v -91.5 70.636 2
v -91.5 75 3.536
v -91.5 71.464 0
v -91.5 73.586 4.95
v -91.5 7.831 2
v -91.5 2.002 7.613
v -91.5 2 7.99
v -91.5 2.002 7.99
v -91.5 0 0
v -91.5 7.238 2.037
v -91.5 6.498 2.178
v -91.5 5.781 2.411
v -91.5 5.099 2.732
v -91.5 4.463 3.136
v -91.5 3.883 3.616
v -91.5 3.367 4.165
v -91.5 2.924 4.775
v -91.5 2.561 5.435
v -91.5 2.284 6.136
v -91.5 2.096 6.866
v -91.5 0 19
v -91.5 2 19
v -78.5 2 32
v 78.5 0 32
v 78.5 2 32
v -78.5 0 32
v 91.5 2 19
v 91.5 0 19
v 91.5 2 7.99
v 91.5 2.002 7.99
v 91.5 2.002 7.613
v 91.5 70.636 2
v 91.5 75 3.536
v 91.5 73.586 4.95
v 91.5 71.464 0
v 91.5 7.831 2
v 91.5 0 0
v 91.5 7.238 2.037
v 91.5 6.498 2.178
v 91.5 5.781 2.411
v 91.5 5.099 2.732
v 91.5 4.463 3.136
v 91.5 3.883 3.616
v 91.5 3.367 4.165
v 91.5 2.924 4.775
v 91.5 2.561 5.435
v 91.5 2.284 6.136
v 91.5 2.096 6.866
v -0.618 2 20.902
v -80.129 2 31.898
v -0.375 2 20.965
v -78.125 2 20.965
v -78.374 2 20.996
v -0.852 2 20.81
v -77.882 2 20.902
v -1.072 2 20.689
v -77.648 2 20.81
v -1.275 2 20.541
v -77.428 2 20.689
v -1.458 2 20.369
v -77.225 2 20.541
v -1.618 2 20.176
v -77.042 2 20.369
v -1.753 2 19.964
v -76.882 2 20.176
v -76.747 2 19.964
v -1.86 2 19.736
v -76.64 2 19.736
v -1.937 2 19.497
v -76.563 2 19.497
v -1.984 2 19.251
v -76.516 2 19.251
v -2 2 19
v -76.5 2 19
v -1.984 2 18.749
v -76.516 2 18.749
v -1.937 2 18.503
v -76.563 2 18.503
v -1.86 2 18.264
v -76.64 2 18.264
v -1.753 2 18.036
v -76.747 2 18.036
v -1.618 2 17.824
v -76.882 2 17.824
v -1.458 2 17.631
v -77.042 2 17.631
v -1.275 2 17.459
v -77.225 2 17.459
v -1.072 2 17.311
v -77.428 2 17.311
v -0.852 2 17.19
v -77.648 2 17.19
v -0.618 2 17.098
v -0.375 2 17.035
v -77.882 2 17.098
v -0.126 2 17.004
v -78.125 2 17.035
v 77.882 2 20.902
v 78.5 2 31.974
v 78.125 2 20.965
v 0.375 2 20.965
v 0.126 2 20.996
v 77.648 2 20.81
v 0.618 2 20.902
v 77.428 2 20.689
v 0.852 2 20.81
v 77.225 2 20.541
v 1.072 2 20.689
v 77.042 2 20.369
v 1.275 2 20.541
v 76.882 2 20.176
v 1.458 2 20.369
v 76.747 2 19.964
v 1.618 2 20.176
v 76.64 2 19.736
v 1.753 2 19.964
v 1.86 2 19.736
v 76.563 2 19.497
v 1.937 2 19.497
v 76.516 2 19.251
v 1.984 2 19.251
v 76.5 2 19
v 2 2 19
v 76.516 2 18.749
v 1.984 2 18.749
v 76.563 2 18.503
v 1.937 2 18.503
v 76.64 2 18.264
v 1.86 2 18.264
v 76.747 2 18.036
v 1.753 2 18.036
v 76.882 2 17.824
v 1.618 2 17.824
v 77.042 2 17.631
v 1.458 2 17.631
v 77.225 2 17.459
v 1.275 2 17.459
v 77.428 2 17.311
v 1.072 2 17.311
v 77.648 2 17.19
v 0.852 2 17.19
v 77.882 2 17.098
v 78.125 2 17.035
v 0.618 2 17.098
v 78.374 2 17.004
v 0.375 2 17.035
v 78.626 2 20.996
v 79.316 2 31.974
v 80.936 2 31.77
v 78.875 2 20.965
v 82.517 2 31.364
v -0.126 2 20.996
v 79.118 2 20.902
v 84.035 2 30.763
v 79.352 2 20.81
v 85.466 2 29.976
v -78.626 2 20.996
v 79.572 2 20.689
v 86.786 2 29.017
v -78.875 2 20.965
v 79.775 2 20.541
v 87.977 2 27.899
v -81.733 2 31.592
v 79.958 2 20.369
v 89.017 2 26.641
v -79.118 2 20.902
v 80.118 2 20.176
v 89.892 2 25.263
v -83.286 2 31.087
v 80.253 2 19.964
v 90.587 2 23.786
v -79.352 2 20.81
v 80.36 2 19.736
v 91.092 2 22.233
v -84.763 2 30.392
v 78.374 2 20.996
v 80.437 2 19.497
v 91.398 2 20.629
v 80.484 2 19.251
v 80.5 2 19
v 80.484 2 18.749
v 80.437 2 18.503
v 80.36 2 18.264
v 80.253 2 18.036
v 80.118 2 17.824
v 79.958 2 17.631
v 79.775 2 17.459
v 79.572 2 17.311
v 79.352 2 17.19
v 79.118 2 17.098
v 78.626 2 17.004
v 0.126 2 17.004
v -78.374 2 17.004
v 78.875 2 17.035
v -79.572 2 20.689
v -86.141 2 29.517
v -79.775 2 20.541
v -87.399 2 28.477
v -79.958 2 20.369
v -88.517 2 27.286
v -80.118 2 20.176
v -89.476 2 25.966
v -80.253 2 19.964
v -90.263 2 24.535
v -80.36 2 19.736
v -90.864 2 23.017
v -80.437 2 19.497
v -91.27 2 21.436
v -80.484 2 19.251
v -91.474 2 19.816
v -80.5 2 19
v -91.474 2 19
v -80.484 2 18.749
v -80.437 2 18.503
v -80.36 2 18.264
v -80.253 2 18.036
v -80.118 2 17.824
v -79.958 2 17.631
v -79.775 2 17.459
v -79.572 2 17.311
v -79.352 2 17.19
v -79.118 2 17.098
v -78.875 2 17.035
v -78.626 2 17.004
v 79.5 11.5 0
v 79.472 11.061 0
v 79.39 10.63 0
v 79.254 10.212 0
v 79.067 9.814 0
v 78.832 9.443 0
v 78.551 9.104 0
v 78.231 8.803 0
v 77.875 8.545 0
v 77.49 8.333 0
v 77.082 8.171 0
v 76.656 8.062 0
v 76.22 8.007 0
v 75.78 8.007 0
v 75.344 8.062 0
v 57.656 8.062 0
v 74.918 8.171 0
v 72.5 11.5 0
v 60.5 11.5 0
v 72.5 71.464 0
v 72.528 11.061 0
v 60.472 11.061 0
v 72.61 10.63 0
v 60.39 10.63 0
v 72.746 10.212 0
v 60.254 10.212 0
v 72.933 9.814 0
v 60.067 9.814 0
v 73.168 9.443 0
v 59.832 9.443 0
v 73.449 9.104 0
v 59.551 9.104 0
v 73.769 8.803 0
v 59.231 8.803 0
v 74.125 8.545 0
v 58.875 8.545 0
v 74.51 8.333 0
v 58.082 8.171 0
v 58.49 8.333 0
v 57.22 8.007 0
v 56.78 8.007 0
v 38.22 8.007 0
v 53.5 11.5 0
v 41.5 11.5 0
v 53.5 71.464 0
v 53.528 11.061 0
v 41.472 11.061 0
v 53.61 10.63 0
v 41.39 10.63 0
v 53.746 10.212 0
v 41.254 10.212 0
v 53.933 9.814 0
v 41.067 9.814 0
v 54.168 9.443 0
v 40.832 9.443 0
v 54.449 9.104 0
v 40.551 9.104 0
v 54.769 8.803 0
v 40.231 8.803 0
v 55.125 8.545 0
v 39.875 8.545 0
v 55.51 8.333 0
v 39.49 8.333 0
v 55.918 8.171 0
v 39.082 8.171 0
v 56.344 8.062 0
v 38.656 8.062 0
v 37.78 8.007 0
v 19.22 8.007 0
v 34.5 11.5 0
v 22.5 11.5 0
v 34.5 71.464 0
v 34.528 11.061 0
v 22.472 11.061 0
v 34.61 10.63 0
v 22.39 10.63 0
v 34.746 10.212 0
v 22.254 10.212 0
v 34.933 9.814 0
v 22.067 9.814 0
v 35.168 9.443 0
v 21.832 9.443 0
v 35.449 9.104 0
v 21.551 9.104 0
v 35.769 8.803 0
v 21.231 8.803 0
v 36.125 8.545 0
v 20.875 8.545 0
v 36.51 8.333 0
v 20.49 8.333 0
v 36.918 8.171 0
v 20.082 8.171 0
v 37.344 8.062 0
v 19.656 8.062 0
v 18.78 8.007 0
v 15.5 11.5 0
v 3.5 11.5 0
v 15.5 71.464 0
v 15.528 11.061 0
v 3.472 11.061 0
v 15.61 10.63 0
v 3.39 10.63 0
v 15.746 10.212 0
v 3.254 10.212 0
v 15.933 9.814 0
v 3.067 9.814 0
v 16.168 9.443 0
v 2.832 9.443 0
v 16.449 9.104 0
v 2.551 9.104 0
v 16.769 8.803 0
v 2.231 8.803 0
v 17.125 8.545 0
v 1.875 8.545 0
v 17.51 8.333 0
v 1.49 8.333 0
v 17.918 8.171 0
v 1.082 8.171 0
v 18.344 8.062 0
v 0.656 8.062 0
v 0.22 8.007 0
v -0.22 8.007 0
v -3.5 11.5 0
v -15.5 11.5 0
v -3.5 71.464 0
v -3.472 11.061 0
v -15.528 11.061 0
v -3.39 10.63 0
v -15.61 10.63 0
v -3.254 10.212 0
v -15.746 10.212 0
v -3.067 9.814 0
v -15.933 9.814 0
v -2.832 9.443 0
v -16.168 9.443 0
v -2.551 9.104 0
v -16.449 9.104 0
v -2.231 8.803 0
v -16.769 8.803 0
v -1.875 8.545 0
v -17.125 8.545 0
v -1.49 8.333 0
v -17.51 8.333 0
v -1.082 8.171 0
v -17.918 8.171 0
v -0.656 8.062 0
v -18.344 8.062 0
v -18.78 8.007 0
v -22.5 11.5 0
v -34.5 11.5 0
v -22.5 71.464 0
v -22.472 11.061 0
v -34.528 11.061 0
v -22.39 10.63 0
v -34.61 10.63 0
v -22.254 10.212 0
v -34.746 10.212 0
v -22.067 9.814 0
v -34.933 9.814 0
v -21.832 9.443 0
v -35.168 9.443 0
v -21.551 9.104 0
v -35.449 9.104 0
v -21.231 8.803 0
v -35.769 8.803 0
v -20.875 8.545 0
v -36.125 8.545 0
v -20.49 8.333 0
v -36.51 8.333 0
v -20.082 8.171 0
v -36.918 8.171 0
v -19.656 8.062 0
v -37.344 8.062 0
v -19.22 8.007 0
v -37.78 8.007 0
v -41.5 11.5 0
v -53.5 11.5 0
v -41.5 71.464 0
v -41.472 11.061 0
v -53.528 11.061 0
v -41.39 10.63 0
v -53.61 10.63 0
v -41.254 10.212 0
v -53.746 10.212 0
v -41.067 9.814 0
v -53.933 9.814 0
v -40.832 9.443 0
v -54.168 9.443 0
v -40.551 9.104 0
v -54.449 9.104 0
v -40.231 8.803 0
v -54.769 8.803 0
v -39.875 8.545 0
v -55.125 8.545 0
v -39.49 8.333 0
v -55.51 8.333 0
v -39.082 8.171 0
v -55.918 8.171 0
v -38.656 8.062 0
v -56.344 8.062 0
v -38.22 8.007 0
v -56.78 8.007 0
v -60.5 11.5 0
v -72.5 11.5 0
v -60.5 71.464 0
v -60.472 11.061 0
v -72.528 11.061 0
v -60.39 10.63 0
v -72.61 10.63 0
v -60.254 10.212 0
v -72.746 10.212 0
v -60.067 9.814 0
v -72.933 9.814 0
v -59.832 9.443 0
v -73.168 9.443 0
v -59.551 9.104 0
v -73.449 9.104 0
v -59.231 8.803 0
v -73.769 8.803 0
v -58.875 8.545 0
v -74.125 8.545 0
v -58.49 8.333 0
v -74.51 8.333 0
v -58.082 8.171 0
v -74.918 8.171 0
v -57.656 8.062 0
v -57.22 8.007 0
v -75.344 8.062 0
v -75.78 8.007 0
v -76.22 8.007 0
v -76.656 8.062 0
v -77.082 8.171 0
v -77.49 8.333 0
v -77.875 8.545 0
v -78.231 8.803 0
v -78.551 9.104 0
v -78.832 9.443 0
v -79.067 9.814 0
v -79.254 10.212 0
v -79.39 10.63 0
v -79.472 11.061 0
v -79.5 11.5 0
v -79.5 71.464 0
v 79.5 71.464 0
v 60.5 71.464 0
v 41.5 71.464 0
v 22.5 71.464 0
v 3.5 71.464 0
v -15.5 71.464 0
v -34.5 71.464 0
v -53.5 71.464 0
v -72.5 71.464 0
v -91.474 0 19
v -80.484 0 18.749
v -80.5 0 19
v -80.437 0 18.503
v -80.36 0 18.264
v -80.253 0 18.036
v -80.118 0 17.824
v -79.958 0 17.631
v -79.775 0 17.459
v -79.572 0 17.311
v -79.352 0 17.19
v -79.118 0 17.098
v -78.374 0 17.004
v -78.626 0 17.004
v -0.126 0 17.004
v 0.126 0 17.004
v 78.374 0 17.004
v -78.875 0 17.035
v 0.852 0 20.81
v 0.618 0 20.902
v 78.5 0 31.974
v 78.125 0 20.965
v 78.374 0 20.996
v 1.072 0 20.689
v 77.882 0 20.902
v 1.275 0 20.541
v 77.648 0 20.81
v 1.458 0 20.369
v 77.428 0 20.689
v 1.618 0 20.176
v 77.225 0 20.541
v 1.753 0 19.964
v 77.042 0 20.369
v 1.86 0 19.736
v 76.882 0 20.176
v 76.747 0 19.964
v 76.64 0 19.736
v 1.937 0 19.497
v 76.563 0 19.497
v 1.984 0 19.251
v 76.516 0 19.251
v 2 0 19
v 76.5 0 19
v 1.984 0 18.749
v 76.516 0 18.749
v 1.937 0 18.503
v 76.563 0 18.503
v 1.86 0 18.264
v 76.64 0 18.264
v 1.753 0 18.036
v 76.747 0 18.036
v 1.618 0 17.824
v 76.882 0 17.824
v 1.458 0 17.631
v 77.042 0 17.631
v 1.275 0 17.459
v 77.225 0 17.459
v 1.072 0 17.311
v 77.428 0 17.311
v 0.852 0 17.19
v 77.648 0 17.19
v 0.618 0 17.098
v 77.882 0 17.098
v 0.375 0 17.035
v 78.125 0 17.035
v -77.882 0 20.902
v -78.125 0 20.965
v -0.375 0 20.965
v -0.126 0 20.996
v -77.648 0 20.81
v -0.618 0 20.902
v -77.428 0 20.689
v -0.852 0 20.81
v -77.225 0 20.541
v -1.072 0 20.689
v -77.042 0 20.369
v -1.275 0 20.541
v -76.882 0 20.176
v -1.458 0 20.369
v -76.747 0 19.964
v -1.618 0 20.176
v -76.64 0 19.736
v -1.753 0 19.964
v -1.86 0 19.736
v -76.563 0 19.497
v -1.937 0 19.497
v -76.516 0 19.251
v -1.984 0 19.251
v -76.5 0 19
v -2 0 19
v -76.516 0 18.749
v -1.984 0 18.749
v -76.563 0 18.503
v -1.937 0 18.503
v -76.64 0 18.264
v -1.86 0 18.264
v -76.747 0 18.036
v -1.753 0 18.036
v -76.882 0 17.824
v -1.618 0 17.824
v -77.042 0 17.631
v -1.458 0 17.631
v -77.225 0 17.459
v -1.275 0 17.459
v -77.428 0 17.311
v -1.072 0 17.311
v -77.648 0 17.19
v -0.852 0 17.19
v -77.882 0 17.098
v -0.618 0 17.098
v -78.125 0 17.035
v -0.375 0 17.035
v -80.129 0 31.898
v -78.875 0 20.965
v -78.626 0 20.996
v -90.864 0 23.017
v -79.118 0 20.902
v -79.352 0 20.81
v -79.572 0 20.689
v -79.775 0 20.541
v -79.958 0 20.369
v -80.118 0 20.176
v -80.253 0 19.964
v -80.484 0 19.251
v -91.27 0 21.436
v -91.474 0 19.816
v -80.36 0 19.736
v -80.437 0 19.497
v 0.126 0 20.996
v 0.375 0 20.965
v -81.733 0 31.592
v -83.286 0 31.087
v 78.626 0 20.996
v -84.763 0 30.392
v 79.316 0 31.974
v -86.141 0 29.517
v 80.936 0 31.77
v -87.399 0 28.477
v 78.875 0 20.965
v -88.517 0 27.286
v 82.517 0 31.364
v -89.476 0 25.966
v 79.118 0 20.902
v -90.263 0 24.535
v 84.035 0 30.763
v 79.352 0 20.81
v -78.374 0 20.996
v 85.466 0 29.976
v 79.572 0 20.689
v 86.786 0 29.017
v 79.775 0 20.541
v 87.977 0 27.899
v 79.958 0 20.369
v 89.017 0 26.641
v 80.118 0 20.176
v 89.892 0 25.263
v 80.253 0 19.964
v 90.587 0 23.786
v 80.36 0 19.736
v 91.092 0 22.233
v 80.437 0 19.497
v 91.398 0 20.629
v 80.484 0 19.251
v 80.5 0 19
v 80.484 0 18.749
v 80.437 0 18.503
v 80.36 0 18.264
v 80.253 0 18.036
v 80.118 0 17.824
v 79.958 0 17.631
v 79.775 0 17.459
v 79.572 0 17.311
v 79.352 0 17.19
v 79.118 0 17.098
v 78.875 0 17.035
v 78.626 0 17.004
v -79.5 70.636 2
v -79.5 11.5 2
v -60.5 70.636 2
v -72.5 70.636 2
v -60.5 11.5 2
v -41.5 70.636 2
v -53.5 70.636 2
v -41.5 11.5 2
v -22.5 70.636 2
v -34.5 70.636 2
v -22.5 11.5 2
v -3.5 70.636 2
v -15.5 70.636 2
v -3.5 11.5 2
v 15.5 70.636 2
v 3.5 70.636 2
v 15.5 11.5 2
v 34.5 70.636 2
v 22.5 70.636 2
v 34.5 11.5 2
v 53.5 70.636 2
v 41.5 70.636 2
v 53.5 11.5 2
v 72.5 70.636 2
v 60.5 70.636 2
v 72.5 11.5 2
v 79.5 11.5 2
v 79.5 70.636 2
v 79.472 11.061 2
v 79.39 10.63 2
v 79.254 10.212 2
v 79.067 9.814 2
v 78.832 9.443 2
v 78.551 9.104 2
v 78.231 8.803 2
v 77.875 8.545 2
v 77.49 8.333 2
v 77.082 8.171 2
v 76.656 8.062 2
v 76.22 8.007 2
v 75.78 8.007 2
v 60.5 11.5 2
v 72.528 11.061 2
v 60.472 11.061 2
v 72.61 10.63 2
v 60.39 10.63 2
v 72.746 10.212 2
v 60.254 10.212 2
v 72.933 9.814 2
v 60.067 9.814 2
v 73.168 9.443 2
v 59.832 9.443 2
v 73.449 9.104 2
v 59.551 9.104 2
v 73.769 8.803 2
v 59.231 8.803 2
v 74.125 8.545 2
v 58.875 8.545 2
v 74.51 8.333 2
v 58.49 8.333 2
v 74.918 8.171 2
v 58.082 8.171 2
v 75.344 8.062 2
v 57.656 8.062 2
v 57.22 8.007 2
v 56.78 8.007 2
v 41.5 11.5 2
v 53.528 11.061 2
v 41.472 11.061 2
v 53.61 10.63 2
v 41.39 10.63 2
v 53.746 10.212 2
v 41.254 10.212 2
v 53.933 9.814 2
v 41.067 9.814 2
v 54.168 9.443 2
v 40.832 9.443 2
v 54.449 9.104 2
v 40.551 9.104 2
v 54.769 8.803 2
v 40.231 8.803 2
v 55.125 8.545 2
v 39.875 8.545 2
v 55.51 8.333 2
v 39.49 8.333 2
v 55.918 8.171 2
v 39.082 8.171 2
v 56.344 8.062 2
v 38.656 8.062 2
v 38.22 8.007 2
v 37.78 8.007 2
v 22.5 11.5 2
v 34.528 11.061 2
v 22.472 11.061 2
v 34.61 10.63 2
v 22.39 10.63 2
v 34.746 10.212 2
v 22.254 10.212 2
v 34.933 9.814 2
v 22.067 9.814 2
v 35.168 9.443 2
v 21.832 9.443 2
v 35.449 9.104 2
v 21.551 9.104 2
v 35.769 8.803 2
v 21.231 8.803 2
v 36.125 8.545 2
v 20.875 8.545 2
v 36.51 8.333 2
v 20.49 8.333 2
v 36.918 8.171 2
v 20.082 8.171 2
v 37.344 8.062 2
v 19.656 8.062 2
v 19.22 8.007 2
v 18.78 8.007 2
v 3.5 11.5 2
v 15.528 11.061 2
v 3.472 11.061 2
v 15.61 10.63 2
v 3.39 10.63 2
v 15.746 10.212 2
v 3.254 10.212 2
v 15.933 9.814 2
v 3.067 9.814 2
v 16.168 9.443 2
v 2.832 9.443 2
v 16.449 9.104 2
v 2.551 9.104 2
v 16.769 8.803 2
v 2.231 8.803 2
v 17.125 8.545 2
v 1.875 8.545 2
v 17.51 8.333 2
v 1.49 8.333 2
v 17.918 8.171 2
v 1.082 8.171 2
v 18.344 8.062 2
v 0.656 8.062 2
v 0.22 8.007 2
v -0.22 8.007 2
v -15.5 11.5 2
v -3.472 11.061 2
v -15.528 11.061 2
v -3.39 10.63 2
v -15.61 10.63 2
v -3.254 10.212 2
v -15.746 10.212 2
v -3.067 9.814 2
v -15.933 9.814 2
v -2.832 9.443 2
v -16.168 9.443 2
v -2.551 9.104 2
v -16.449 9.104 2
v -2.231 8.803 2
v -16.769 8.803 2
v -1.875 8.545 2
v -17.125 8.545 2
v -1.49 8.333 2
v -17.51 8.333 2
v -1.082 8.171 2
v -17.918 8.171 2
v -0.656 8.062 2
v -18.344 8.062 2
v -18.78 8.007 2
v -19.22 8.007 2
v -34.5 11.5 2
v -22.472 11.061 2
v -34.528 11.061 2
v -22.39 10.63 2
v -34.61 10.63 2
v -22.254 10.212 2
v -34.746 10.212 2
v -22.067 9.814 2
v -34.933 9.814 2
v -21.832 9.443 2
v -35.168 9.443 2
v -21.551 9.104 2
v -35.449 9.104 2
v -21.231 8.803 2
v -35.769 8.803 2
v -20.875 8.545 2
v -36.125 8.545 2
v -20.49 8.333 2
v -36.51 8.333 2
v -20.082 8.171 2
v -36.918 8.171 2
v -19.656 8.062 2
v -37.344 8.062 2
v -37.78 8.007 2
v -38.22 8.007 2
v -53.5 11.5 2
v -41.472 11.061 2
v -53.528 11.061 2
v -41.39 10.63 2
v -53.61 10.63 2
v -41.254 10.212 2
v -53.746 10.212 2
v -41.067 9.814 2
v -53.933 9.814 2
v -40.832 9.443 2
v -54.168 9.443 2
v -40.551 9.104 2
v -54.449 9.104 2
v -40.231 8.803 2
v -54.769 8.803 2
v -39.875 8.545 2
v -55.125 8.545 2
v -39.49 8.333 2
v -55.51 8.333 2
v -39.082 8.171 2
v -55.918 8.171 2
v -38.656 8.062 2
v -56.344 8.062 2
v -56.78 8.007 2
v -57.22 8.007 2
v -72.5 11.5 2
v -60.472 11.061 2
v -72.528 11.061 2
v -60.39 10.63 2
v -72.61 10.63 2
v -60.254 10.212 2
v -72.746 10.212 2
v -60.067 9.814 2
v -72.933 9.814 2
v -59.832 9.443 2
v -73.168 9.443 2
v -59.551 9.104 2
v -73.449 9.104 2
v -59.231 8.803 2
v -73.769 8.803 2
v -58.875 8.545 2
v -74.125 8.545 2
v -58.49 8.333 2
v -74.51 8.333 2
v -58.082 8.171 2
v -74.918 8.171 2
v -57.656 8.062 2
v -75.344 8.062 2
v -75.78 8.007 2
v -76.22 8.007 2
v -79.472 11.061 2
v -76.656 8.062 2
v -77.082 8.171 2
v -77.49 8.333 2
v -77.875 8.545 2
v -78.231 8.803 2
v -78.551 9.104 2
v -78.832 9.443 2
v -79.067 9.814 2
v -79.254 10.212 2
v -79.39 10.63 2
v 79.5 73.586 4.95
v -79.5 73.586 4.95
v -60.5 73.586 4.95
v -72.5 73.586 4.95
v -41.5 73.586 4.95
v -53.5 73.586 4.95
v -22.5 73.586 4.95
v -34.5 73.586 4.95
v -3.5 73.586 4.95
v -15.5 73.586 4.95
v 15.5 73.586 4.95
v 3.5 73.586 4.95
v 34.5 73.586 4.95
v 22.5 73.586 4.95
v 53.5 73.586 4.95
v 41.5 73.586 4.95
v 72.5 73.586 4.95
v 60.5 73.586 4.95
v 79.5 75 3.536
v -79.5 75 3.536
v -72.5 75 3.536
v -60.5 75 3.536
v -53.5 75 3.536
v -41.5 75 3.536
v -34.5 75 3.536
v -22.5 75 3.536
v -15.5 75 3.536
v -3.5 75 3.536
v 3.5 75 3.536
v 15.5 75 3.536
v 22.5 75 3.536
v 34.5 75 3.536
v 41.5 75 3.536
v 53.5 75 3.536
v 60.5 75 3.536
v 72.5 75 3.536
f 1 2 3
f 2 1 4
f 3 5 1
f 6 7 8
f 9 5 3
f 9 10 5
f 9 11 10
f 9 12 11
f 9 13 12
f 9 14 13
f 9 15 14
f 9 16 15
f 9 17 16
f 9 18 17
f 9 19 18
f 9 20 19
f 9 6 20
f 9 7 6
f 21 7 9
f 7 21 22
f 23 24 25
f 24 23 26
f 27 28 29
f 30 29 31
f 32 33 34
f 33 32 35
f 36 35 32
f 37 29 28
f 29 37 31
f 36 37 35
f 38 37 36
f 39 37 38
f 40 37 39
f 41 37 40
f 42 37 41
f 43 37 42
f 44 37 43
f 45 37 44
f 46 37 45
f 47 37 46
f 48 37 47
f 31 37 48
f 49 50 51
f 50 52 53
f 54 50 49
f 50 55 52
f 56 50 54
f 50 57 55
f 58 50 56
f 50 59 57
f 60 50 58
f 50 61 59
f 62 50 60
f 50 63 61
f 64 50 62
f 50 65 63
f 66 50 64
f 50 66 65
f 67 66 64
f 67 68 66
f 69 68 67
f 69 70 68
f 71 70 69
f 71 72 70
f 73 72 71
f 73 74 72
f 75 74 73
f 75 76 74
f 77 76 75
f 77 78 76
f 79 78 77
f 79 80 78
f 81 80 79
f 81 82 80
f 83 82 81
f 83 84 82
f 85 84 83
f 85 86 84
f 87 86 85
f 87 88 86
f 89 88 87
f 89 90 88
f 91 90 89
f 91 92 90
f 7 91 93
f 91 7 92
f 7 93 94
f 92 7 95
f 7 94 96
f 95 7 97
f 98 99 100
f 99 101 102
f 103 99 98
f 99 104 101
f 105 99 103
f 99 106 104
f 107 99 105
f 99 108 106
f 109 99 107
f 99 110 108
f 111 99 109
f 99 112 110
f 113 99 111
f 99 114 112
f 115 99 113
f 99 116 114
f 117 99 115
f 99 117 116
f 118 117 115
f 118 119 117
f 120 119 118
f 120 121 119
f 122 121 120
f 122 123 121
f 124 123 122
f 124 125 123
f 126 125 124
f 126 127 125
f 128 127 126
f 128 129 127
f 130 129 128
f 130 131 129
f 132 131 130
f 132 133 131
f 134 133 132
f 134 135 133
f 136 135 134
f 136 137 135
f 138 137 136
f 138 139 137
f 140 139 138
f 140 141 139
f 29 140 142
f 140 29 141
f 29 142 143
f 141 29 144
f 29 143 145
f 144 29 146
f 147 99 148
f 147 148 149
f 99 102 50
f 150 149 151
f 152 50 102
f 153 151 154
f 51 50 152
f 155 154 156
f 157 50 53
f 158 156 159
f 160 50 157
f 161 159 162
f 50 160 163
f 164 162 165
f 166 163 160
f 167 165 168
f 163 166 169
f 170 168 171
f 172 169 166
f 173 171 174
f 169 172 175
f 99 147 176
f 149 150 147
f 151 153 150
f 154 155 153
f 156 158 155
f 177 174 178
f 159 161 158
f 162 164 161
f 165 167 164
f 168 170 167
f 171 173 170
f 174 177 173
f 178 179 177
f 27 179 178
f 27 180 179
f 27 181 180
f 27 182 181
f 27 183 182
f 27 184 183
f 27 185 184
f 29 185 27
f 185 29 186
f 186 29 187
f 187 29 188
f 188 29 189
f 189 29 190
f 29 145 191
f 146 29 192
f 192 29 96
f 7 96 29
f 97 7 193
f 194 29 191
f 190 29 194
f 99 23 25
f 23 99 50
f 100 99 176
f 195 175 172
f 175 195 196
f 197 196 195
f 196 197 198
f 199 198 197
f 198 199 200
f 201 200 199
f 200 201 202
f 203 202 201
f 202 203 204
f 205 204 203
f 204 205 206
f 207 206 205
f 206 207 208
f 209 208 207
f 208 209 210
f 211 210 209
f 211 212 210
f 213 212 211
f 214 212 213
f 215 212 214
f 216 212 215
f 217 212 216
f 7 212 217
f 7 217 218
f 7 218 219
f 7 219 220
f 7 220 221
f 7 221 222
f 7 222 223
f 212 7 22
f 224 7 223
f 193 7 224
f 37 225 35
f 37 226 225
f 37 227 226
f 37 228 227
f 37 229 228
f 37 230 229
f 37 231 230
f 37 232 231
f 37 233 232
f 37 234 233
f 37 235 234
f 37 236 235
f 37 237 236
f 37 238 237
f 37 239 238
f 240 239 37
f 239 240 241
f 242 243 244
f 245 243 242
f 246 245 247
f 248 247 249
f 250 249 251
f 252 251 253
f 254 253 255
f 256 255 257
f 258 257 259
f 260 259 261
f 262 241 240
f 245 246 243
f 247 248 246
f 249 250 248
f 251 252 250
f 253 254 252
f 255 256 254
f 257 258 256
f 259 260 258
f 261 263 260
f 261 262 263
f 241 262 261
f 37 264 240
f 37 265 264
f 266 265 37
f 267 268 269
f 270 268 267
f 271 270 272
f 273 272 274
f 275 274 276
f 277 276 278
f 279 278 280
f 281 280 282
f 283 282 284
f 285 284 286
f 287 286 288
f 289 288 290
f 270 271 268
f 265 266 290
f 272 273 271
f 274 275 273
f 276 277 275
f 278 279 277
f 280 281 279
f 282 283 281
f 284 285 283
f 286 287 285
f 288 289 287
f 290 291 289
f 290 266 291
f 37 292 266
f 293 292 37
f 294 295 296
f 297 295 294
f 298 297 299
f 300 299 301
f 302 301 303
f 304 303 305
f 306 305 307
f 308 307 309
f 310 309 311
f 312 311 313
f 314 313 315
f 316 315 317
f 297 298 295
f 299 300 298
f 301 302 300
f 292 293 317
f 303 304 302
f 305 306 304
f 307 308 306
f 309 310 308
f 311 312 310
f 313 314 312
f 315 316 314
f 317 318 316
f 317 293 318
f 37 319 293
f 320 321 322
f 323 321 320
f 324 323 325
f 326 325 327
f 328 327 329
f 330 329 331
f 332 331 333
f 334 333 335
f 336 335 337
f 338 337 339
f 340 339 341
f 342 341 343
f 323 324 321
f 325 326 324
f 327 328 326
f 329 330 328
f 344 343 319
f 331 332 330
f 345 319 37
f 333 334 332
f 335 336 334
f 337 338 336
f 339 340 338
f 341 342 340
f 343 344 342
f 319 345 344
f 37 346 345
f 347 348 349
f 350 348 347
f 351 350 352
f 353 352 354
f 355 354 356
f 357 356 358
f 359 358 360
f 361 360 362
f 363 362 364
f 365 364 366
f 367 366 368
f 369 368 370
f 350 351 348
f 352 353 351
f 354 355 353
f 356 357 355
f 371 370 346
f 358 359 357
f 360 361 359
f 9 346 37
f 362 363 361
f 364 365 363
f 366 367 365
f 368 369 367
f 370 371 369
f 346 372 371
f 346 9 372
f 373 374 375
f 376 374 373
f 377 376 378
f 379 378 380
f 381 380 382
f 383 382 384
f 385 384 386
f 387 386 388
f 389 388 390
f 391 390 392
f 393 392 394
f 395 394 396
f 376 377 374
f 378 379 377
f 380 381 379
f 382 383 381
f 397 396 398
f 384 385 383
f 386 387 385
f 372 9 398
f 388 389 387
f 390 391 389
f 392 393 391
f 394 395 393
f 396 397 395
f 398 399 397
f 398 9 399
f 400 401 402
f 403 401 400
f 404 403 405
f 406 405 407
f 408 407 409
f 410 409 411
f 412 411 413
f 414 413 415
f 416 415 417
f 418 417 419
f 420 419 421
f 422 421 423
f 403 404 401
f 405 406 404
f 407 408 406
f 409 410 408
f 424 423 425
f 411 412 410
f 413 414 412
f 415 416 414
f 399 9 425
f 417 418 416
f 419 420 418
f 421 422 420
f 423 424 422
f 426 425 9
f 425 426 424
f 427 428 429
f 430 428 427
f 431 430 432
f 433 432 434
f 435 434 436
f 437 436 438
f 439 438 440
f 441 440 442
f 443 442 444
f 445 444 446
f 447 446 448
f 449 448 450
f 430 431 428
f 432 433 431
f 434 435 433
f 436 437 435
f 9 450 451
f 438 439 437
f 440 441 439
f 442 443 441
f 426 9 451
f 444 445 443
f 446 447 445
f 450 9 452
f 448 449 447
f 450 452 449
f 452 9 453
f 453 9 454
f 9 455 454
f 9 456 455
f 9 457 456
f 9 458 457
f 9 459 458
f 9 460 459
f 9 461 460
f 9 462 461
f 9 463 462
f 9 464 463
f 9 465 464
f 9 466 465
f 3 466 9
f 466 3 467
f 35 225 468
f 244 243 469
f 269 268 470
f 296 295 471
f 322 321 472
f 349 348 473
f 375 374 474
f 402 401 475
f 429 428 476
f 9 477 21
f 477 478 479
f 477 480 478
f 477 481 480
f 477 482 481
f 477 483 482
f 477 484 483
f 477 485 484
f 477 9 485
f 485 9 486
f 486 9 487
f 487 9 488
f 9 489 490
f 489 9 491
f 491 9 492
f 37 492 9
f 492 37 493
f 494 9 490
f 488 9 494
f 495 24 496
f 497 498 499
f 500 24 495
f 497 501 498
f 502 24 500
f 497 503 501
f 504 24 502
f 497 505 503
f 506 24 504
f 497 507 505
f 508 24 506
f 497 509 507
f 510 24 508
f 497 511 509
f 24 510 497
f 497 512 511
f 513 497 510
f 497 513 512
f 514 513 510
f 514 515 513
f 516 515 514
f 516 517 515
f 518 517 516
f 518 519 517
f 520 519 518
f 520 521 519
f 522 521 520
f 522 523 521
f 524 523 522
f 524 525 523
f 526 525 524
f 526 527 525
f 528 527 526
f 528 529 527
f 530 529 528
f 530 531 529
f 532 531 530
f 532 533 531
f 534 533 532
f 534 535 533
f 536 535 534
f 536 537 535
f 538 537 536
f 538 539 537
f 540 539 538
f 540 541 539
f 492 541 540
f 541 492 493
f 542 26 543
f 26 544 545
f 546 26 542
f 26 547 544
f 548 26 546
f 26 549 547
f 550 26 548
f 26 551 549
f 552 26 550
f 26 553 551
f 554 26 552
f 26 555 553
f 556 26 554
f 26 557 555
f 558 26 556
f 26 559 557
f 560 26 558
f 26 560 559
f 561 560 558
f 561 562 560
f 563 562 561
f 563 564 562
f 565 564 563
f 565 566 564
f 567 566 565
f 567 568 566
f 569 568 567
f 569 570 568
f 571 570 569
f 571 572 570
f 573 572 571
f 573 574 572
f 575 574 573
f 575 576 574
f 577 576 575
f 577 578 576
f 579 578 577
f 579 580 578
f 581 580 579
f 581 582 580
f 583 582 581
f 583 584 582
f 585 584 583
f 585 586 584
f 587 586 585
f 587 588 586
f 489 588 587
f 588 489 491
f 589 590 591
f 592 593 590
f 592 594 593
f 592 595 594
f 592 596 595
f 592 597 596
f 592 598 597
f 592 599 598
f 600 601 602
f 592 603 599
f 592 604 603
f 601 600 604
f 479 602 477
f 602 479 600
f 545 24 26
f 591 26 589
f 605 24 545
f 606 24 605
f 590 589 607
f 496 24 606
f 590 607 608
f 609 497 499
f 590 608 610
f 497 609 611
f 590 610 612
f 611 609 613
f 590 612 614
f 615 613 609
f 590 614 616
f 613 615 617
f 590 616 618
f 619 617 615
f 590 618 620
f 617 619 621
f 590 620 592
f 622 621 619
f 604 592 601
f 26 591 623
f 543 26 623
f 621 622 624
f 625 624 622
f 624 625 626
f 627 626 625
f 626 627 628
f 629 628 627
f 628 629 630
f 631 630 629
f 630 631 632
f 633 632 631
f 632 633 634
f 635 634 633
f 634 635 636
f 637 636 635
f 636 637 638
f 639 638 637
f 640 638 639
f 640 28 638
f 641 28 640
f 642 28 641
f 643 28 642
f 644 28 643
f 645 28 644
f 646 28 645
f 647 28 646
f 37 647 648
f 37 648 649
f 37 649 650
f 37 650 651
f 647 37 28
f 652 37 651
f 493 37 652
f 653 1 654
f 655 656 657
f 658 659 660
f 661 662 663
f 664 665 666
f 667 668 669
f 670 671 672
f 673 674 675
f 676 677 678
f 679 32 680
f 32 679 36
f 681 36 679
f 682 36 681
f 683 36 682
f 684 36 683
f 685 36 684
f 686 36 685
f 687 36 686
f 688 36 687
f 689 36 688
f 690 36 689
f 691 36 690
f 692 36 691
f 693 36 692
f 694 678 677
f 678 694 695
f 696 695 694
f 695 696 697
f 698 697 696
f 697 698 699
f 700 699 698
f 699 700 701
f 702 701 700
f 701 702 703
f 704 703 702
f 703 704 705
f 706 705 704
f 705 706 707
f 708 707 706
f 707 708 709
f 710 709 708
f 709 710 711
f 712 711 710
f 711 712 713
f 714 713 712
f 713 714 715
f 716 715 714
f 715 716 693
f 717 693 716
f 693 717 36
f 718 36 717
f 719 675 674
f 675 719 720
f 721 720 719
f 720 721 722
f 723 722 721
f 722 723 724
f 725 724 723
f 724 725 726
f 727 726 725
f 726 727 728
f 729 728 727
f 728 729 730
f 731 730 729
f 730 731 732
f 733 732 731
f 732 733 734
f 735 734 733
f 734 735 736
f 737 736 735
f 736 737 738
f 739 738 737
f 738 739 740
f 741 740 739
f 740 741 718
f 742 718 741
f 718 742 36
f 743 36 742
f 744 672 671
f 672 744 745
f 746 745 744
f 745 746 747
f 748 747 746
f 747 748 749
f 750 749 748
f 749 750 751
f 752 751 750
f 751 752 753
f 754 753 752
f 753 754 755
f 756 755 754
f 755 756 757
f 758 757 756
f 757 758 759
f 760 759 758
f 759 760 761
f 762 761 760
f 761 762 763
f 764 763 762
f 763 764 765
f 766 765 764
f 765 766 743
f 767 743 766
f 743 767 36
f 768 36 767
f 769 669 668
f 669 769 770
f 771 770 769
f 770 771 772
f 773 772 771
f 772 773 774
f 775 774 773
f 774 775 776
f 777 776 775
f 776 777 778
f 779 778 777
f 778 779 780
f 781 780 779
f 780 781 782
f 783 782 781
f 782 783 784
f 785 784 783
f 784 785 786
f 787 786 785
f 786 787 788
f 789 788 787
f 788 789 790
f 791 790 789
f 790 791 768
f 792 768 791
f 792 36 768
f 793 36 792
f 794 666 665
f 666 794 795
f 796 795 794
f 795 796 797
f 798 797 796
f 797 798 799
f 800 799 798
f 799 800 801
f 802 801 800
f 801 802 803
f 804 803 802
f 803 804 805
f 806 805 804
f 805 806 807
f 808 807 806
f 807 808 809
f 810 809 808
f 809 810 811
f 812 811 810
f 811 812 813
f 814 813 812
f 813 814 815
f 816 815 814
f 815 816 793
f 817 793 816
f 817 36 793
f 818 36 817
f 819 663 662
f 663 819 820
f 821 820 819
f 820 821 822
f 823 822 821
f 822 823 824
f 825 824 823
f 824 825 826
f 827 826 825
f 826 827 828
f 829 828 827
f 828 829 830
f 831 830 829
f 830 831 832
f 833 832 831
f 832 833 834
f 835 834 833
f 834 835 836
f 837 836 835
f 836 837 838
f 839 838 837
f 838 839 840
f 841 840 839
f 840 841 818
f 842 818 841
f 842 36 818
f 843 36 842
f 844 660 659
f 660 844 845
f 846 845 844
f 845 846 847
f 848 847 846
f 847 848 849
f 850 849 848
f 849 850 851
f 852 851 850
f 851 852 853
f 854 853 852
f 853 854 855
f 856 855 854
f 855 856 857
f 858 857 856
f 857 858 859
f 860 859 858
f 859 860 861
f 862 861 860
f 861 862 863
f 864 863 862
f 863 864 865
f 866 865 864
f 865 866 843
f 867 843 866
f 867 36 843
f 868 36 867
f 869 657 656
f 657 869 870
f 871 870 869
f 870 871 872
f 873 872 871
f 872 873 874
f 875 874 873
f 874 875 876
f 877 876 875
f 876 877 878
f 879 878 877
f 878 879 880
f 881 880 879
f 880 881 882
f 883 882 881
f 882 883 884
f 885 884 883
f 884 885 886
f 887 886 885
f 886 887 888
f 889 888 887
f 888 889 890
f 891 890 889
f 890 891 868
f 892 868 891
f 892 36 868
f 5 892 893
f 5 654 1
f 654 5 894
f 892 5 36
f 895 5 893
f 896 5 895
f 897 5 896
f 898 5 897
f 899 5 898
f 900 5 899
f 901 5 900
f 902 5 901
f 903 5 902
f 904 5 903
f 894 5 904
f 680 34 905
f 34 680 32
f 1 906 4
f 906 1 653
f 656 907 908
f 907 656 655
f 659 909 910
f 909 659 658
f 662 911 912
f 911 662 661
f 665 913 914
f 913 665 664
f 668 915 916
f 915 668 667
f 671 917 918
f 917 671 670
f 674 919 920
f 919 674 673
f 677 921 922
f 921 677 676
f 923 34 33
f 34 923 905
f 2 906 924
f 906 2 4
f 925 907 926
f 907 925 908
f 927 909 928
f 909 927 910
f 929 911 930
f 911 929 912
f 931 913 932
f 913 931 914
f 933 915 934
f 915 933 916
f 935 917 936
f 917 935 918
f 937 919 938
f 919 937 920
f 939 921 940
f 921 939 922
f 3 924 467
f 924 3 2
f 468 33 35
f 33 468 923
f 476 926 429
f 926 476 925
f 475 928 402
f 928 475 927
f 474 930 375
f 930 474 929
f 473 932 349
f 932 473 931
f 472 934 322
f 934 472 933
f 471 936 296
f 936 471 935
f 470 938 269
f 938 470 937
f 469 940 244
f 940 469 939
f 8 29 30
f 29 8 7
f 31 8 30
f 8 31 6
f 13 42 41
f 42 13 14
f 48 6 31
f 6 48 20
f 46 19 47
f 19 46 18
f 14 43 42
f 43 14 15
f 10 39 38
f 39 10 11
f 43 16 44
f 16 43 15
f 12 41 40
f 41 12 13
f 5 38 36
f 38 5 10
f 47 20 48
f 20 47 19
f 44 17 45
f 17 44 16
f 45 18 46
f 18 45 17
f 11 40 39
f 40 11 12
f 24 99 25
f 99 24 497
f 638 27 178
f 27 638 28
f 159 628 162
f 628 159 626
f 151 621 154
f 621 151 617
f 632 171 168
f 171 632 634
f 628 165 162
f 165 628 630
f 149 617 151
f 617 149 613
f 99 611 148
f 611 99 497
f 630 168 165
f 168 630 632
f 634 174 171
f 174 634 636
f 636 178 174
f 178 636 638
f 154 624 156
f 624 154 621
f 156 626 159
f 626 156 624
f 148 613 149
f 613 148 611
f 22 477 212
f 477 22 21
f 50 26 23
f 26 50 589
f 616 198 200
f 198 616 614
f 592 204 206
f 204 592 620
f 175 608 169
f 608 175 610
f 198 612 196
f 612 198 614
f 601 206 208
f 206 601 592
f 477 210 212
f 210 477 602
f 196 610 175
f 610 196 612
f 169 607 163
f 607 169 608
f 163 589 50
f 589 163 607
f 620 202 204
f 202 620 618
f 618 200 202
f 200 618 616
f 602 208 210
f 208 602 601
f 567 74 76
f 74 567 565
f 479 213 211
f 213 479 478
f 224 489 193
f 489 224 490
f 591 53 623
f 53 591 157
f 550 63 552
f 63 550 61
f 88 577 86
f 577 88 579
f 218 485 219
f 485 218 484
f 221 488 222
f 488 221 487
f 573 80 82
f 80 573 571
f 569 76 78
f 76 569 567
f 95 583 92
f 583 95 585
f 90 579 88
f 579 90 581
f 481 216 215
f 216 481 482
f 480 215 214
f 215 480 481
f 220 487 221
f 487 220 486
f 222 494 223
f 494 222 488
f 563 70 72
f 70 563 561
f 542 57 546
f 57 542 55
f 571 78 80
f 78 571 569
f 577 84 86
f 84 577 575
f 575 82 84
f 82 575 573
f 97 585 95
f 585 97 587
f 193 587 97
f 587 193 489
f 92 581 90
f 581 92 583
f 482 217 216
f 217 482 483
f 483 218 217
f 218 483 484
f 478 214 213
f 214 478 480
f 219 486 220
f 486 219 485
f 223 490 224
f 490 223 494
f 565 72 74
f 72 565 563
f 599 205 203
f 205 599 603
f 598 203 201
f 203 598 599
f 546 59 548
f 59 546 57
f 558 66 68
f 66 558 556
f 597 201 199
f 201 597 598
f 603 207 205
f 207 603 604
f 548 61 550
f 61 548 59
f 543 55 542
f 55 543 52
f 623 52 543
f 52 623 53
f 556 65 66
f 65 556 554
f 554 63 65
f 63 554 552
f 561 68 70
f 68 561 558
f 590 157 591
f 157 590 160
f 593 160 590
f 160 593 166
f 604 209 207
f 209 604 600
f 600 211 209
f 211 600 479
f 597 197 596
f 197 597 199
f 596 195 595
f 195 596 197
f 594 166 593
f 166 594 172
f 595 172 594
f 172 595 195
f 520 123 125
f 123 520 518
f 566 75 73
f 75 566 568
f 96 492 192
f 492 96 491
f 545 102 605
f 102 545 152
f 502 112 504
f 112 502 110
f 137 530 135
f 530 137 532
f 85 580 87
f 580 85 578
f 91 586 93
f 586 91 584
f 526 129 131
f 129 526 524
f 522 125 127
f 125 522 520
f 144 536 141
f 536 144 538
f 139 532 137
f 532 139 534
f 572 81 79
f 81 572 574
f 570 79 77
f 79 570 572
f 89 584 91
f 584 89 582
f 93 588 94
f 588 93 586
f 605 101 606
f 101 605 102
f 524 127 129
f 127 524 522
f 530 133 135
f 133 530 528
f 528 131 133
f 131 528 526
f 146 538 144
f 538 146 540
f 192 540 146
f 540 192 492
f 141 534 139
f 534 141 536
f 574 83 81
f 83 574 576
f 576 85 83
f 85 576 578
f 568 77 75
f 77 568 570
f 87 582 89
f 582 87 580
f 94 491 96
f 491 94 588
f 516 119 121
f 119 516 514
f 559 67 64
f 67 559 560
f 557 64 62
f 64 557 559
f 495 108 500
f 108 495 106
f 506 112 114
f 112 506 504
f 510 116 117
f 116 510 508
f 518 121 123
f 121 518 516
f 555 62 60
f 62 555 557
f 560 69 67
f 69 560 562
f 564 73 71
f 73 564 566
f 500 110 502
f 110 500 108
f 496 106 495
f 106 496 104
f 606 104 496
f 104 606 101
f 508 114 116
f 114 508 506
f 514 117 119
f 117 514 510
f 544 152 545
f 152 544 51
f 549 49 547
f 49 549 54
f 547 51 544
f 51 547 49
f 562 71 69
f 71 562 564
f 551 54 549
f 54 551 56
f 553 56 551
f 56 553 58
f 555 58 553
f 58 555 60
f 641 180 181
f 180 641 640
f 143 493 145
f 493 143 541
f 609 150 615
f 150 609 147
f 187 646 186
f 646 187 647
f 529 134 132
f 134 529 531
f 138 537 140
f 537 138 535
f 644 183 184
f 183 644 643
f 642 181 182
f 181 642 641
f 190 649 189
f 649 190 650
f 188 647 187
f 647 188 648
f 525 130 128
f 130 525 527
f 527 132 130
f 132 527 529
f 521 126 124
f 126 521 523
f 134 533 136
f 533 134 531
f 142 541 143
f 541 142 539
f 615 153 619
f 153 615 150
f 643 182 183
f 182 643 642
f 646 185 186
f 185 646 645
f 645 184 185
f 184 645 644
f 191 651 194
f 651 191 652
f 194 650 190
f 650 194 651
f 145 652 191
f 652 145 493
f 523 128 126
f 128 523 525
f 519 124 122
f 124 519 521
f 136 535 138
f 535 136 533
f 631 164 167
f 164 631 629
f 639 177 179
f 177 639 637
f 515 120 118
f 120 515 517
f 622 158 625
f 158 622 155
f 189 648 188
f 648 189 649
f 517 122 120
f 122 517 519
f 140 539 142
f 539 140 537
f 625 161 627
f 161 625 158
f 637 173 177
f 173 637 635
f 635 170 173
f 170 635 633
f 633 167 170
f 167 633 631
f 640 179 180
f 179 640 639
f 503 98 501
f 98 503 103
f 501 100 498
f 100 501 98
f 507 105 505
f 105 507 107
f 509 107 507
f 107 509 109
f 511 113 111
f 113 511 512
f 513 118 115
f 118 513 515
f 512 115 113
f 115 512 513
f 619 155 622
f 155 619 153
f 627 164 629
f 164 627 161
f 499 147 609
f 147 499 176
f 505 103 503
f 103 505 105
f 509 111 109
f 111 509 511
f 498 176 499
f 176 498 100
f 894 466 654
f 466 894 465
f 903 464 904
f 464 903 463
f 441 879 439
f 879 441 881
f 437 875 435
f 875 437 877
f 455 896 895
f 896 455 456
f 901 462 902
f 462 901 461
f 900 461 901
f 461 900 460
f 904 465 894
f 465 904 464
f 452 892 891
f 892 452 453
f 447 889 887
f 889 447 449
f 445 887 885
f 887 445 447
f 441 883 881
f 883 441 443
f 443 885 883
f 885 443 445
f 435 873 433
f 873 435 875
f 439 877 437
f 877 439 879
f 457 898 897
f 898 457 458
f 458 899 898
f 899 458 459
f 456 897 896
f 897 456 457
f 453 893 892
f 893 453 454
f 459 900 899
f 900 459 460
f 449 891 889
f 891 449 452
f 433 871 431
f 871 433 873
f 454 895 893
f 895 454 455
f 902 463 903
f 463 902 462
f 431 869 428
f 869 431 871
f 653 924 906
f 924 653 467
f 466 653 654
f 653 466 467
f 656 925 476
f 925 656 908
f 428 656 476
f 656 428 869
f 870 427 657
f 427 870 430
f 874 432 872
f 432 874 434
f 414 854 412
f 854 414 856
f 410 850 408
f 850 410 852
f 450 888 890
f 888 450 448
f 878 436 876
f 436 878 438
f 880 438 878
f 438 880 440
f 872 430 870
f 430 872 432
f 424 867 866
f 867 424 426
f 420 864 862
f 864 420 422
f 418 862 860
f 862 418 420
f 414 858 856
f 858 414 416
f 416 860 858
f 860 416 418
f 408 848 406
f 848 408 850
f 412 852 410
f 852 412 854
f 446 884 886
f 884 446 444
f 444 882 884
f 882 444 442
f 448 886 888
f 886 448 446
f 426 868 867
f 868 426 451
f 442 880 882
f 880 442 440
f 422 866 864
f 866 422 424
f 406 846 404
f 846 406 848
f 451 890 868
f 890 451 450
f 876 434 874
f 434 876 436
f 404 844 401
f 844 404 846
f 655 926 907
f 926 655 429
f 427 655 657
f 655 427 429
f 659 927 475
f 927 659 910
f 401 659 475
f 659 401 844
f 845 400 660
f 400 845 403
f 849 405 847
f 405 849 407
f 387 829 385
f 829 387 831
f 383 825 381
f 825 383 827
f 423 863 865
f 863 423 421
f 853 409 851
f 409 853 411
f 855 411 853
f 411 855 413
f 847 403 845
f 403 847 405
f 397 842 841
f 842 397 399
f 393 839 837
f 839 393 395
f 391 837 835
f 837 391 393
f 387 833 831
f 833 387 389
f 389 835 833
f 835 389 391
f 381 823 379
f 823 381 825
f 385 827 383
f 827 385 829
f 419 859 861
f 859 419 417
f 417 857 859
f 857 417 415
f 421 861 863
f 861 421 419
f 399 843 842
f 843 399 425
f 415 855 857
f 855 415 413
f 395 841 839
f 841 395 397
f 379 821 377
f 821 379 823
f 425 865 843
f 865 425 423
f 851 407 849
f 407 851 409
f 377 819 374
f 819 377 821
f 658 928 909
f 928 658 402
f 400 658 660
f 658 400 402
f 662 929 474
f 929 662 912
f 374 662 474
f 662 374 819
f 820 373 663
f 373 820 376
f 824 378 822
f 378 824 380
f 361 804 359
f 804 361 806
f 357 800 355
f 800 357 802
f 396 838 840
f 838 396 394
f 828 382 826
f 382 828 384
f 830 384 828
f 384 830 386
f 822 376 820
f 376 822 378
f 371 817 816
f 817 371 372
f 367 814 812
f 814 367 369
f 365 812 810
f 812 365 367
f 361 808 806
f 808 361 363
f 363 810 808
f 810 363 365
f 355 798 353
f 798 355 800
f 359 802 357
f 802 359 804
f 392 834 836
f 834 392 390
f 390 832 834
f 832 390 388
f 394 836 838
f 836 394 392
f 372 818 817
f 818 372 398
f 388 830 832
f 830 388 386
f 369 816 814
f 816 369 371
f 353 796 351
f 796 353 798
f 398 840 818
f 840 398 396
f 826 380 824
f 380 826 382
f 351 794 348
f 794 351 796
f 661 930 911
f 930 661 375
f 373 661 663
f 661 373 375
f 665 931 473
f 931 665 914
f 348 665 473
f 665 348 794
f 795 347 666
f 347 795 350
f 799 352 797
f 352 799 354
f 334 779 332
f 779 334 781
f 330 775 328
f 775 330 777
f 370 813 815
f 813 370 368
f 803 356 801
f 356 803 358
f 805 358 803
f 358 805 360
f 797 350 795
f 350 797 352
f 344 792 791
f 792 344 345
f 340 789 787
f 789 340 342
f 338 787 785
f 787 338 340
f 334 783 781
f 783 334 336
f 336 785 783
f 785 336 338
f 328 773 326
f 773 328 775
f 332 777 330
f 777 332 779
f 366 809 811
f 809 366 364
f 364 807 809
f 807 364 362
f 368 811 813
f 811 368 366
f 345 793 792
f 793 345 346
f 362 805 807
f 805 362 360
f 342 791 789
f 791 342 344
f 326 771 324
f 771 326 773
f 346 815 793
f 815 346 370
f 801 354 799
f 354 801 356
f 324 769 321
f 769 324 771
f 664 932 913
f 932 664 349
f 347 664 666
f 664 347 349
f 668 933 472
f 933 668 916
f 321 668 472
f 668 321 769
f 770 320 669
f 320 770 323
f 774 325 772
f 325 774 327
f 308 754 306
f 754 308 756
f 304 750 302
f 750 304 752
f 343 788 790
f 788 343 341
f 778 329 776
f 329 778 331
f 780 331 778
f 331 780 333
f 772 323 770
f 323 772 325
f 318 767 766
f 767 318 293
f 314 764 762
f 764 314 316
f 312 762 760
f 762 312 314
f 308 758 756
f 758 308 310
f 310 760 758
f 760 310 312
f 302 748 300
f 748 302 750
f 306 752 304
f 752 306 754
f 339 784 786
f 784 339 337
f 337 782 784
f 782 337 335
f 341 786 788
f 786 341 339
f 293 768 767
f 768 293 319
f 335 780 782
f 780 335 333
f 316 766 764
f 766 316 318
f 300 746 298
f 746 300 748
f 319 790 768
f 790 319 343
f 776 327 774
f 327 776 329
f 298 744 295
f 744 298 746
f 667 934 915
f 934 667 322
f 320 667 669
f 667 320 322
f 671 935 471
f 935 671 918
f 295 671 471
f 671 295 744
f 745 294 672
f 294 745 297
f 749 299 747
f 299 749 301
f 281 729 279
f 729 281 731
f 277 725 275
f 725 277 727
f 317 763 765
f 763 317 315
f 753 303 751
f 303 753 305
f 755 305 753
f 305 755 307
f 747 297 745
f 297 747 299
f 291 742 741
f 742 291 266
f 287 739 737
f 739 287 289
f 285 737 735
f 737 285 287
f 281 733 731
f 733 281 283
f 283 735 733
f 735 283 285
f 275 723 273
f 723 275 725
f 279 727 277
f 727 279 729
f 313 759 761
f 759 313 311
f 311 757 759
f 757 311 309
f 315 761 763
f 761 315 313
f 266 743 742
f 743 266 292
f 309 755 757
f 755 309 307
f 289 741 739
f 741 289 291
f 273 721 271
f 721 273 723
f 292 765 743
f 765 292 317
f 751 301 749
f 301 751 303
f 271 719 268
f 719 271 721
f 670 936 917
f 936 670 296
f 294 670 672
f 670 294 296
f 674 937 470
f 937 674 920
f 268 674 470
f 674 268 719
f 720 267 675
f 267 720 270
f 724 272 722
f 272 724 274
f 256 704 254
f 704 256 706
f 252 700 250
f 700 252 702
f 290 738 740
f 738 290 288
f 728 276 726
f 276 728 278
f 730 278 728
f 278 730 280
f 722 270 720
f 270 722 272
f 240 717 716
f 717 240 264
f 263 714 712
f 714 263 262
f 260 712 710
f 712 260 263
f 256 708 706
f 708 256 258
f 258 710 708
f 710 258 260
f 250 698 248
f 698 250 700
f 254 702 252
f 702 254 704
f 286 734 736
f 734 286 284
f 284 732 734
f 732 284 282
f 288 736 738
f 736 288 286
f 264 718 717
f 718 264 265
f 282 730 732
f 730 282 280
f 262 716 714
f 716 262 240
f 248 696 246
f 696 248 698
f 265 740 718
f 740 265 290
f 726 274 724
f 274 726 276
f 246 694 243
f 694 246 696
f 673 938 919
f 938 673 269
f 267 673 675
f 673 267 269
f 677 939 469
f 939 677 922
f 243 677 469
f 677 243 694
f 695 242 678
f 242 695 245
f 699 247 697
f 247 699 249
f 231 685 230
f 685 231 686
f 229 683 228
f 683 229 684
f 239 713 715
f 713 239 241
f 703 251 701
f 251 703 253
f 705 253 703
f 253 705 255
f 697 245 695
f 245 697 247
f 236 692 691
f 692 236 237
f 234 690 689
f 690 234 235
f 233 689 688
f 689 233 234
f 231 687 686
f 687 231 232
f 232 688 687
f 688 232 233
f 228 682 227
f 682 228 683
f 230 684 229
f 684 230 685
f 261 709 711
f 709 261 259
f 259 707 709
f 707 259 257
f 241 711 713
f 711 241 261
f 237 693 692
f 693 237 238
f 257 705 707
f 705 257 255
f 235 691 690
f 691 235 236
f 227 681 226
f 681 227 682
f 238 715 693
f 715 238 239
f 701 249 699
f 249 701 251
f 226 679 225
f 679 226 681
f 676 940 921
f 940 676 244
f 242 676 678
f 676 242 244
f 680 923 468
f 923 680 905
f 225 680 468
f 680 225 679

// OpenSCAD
// Height of back plate
Height = 32;
// Thickness of back plate
BackThickness = 2;
// Total distance from back plate to tip of arms
Depth = 75;
// Fillet between back plate and arms for strength
FilletRadius = 6;

// Vertical thickness of Arms/Prongs
ArmThickness = 2;
// Arm Width
ArmWidth = 12;
// How much end of arm is angled above horizontal
AngleDegrees = 45;
// Length of angled portion of arms
AngledLength = 5;
// Gap between arms
SlotWidth = 7;
// How many slot for holding leads
SlotCount = 9;
// Detail
$fn = 50;

// Bolt/Screw hole style, none for adhesive mounting
HoleStyle = 1; // [0:None,1:Circular,2:Keyhole]
// Bolt thread outer diameter
BoltDiameter = 4;
// Only for "Keyhole" style
BoltHeadDiameter = 8;
// Number of mounting holes
BoltCount = 3; // [2:8]

TotalLength = SlotCount * SlotWidth + ArmWidth * (SlotCount + 1);
HoleInset = (Height - FilletRadius) / 2;
DepthLessAngle = Depth - AngledLength * cos(AngleDegrees);


module KeyHole(dlarge,dsmall,depth) {
  err = 0.01; // avoid coincident faces
  translate([0,0,-err/2]) {
    cylinder(h=depth + err,d=dsmall);
    translate([0,dlarge,0]) cylinder(h=depth + err,d=dlarge);
    translate([0,dlarge / 2, (depth + err) / 2]) cube([dsmall, dlarge, depth + err], center = true);
  }
}

module insidefillet(r, length) {
  err = 0.01;
  difference () {
   translate([0,r/2,r/2]) cube([length,r,r], center=true);
   translate([0,r,r]) rotate([0,90,0]) cylinder(h=length+2*err, r=r, center=true);
  }
}

module outsidefillet(r, length) {
  err = 0.01;
  translate([length / 2,0,0])
  difference () {
   translate([0,r,r]) cube([length+err,r*2,r*2], center=true);
   rotate([0,90,0]) cylinder(h=length+2*err, r=r, center=true);
  }
}

err = 0.01;
difference() {
  union() {
    translate([-TotalLength/2,0,0]) {
      cube([TotalLength,BackThickness,Height]);
      cube([TotalLength, DepthLessAngle, ArmThickness]);
      translate([0,DepthLessAngle]) rotate([AngleDegrees,0,0]) 
        cube([TotalLength, AngledLength, ArmThickness]);
    }
    translate([0,BackThickness-err,ArmThickness-err]) insidefillet(FilletRadius, TotalLength);
  }
  translate([TotalLength / 2 - HoleInset, 0, Height - HoleInset]) rotate([90,0,90]) 
    outsidefillet(HoleInset, BackThickness + err);
  translate([-TotalLength / 2 + HoleInset, 0, Height - HoleInset]) rotate([0,0,90]) 
    outsidefillet(HoleInset, BackThickness + err);
  
  totalBoltDistance = TotalLength - HoleInset * 2;
  for (offset = [0: totalBoltDistance / (BoltCount - 1): totalBoltDistance]) {
    if (HoleStyle == 2)
      translate([-TotalLength / 2 + HoleInset + offset, 0, Height - HoleInset]) rotate([-90,0,0]) 
        KeyHole(BoltHeadDiameter, BoltDiameter, BackThickness+FilletRadius*2);
    else if (HoleStyle == 1)
      translate([-TotalLength / 2 + HoleInset + offset, -err, Height - HoleInset]) rotate([-90,0,0]) 
        cylinder(h = BackThickness + err * 2, d = BoltDiameter);
  }
  
  for(i = [1:SlotCount]) {
    translate([-TotalLength / 2 + ArmWidth + (i-1) * (ArmWidth + SlotWidth), BackThickness + FilletRadius + SlotWidth / 2, -err])
    union() {  
      translate([SlotWidth/2, 0, 0]) cylinder(h = ArmThickness + AngledLength + err*2, d = SlotWidth);
      cube([SlotWidth, Depth, ArmThickness + AngledLength + err*2]);
    }
  }
}
